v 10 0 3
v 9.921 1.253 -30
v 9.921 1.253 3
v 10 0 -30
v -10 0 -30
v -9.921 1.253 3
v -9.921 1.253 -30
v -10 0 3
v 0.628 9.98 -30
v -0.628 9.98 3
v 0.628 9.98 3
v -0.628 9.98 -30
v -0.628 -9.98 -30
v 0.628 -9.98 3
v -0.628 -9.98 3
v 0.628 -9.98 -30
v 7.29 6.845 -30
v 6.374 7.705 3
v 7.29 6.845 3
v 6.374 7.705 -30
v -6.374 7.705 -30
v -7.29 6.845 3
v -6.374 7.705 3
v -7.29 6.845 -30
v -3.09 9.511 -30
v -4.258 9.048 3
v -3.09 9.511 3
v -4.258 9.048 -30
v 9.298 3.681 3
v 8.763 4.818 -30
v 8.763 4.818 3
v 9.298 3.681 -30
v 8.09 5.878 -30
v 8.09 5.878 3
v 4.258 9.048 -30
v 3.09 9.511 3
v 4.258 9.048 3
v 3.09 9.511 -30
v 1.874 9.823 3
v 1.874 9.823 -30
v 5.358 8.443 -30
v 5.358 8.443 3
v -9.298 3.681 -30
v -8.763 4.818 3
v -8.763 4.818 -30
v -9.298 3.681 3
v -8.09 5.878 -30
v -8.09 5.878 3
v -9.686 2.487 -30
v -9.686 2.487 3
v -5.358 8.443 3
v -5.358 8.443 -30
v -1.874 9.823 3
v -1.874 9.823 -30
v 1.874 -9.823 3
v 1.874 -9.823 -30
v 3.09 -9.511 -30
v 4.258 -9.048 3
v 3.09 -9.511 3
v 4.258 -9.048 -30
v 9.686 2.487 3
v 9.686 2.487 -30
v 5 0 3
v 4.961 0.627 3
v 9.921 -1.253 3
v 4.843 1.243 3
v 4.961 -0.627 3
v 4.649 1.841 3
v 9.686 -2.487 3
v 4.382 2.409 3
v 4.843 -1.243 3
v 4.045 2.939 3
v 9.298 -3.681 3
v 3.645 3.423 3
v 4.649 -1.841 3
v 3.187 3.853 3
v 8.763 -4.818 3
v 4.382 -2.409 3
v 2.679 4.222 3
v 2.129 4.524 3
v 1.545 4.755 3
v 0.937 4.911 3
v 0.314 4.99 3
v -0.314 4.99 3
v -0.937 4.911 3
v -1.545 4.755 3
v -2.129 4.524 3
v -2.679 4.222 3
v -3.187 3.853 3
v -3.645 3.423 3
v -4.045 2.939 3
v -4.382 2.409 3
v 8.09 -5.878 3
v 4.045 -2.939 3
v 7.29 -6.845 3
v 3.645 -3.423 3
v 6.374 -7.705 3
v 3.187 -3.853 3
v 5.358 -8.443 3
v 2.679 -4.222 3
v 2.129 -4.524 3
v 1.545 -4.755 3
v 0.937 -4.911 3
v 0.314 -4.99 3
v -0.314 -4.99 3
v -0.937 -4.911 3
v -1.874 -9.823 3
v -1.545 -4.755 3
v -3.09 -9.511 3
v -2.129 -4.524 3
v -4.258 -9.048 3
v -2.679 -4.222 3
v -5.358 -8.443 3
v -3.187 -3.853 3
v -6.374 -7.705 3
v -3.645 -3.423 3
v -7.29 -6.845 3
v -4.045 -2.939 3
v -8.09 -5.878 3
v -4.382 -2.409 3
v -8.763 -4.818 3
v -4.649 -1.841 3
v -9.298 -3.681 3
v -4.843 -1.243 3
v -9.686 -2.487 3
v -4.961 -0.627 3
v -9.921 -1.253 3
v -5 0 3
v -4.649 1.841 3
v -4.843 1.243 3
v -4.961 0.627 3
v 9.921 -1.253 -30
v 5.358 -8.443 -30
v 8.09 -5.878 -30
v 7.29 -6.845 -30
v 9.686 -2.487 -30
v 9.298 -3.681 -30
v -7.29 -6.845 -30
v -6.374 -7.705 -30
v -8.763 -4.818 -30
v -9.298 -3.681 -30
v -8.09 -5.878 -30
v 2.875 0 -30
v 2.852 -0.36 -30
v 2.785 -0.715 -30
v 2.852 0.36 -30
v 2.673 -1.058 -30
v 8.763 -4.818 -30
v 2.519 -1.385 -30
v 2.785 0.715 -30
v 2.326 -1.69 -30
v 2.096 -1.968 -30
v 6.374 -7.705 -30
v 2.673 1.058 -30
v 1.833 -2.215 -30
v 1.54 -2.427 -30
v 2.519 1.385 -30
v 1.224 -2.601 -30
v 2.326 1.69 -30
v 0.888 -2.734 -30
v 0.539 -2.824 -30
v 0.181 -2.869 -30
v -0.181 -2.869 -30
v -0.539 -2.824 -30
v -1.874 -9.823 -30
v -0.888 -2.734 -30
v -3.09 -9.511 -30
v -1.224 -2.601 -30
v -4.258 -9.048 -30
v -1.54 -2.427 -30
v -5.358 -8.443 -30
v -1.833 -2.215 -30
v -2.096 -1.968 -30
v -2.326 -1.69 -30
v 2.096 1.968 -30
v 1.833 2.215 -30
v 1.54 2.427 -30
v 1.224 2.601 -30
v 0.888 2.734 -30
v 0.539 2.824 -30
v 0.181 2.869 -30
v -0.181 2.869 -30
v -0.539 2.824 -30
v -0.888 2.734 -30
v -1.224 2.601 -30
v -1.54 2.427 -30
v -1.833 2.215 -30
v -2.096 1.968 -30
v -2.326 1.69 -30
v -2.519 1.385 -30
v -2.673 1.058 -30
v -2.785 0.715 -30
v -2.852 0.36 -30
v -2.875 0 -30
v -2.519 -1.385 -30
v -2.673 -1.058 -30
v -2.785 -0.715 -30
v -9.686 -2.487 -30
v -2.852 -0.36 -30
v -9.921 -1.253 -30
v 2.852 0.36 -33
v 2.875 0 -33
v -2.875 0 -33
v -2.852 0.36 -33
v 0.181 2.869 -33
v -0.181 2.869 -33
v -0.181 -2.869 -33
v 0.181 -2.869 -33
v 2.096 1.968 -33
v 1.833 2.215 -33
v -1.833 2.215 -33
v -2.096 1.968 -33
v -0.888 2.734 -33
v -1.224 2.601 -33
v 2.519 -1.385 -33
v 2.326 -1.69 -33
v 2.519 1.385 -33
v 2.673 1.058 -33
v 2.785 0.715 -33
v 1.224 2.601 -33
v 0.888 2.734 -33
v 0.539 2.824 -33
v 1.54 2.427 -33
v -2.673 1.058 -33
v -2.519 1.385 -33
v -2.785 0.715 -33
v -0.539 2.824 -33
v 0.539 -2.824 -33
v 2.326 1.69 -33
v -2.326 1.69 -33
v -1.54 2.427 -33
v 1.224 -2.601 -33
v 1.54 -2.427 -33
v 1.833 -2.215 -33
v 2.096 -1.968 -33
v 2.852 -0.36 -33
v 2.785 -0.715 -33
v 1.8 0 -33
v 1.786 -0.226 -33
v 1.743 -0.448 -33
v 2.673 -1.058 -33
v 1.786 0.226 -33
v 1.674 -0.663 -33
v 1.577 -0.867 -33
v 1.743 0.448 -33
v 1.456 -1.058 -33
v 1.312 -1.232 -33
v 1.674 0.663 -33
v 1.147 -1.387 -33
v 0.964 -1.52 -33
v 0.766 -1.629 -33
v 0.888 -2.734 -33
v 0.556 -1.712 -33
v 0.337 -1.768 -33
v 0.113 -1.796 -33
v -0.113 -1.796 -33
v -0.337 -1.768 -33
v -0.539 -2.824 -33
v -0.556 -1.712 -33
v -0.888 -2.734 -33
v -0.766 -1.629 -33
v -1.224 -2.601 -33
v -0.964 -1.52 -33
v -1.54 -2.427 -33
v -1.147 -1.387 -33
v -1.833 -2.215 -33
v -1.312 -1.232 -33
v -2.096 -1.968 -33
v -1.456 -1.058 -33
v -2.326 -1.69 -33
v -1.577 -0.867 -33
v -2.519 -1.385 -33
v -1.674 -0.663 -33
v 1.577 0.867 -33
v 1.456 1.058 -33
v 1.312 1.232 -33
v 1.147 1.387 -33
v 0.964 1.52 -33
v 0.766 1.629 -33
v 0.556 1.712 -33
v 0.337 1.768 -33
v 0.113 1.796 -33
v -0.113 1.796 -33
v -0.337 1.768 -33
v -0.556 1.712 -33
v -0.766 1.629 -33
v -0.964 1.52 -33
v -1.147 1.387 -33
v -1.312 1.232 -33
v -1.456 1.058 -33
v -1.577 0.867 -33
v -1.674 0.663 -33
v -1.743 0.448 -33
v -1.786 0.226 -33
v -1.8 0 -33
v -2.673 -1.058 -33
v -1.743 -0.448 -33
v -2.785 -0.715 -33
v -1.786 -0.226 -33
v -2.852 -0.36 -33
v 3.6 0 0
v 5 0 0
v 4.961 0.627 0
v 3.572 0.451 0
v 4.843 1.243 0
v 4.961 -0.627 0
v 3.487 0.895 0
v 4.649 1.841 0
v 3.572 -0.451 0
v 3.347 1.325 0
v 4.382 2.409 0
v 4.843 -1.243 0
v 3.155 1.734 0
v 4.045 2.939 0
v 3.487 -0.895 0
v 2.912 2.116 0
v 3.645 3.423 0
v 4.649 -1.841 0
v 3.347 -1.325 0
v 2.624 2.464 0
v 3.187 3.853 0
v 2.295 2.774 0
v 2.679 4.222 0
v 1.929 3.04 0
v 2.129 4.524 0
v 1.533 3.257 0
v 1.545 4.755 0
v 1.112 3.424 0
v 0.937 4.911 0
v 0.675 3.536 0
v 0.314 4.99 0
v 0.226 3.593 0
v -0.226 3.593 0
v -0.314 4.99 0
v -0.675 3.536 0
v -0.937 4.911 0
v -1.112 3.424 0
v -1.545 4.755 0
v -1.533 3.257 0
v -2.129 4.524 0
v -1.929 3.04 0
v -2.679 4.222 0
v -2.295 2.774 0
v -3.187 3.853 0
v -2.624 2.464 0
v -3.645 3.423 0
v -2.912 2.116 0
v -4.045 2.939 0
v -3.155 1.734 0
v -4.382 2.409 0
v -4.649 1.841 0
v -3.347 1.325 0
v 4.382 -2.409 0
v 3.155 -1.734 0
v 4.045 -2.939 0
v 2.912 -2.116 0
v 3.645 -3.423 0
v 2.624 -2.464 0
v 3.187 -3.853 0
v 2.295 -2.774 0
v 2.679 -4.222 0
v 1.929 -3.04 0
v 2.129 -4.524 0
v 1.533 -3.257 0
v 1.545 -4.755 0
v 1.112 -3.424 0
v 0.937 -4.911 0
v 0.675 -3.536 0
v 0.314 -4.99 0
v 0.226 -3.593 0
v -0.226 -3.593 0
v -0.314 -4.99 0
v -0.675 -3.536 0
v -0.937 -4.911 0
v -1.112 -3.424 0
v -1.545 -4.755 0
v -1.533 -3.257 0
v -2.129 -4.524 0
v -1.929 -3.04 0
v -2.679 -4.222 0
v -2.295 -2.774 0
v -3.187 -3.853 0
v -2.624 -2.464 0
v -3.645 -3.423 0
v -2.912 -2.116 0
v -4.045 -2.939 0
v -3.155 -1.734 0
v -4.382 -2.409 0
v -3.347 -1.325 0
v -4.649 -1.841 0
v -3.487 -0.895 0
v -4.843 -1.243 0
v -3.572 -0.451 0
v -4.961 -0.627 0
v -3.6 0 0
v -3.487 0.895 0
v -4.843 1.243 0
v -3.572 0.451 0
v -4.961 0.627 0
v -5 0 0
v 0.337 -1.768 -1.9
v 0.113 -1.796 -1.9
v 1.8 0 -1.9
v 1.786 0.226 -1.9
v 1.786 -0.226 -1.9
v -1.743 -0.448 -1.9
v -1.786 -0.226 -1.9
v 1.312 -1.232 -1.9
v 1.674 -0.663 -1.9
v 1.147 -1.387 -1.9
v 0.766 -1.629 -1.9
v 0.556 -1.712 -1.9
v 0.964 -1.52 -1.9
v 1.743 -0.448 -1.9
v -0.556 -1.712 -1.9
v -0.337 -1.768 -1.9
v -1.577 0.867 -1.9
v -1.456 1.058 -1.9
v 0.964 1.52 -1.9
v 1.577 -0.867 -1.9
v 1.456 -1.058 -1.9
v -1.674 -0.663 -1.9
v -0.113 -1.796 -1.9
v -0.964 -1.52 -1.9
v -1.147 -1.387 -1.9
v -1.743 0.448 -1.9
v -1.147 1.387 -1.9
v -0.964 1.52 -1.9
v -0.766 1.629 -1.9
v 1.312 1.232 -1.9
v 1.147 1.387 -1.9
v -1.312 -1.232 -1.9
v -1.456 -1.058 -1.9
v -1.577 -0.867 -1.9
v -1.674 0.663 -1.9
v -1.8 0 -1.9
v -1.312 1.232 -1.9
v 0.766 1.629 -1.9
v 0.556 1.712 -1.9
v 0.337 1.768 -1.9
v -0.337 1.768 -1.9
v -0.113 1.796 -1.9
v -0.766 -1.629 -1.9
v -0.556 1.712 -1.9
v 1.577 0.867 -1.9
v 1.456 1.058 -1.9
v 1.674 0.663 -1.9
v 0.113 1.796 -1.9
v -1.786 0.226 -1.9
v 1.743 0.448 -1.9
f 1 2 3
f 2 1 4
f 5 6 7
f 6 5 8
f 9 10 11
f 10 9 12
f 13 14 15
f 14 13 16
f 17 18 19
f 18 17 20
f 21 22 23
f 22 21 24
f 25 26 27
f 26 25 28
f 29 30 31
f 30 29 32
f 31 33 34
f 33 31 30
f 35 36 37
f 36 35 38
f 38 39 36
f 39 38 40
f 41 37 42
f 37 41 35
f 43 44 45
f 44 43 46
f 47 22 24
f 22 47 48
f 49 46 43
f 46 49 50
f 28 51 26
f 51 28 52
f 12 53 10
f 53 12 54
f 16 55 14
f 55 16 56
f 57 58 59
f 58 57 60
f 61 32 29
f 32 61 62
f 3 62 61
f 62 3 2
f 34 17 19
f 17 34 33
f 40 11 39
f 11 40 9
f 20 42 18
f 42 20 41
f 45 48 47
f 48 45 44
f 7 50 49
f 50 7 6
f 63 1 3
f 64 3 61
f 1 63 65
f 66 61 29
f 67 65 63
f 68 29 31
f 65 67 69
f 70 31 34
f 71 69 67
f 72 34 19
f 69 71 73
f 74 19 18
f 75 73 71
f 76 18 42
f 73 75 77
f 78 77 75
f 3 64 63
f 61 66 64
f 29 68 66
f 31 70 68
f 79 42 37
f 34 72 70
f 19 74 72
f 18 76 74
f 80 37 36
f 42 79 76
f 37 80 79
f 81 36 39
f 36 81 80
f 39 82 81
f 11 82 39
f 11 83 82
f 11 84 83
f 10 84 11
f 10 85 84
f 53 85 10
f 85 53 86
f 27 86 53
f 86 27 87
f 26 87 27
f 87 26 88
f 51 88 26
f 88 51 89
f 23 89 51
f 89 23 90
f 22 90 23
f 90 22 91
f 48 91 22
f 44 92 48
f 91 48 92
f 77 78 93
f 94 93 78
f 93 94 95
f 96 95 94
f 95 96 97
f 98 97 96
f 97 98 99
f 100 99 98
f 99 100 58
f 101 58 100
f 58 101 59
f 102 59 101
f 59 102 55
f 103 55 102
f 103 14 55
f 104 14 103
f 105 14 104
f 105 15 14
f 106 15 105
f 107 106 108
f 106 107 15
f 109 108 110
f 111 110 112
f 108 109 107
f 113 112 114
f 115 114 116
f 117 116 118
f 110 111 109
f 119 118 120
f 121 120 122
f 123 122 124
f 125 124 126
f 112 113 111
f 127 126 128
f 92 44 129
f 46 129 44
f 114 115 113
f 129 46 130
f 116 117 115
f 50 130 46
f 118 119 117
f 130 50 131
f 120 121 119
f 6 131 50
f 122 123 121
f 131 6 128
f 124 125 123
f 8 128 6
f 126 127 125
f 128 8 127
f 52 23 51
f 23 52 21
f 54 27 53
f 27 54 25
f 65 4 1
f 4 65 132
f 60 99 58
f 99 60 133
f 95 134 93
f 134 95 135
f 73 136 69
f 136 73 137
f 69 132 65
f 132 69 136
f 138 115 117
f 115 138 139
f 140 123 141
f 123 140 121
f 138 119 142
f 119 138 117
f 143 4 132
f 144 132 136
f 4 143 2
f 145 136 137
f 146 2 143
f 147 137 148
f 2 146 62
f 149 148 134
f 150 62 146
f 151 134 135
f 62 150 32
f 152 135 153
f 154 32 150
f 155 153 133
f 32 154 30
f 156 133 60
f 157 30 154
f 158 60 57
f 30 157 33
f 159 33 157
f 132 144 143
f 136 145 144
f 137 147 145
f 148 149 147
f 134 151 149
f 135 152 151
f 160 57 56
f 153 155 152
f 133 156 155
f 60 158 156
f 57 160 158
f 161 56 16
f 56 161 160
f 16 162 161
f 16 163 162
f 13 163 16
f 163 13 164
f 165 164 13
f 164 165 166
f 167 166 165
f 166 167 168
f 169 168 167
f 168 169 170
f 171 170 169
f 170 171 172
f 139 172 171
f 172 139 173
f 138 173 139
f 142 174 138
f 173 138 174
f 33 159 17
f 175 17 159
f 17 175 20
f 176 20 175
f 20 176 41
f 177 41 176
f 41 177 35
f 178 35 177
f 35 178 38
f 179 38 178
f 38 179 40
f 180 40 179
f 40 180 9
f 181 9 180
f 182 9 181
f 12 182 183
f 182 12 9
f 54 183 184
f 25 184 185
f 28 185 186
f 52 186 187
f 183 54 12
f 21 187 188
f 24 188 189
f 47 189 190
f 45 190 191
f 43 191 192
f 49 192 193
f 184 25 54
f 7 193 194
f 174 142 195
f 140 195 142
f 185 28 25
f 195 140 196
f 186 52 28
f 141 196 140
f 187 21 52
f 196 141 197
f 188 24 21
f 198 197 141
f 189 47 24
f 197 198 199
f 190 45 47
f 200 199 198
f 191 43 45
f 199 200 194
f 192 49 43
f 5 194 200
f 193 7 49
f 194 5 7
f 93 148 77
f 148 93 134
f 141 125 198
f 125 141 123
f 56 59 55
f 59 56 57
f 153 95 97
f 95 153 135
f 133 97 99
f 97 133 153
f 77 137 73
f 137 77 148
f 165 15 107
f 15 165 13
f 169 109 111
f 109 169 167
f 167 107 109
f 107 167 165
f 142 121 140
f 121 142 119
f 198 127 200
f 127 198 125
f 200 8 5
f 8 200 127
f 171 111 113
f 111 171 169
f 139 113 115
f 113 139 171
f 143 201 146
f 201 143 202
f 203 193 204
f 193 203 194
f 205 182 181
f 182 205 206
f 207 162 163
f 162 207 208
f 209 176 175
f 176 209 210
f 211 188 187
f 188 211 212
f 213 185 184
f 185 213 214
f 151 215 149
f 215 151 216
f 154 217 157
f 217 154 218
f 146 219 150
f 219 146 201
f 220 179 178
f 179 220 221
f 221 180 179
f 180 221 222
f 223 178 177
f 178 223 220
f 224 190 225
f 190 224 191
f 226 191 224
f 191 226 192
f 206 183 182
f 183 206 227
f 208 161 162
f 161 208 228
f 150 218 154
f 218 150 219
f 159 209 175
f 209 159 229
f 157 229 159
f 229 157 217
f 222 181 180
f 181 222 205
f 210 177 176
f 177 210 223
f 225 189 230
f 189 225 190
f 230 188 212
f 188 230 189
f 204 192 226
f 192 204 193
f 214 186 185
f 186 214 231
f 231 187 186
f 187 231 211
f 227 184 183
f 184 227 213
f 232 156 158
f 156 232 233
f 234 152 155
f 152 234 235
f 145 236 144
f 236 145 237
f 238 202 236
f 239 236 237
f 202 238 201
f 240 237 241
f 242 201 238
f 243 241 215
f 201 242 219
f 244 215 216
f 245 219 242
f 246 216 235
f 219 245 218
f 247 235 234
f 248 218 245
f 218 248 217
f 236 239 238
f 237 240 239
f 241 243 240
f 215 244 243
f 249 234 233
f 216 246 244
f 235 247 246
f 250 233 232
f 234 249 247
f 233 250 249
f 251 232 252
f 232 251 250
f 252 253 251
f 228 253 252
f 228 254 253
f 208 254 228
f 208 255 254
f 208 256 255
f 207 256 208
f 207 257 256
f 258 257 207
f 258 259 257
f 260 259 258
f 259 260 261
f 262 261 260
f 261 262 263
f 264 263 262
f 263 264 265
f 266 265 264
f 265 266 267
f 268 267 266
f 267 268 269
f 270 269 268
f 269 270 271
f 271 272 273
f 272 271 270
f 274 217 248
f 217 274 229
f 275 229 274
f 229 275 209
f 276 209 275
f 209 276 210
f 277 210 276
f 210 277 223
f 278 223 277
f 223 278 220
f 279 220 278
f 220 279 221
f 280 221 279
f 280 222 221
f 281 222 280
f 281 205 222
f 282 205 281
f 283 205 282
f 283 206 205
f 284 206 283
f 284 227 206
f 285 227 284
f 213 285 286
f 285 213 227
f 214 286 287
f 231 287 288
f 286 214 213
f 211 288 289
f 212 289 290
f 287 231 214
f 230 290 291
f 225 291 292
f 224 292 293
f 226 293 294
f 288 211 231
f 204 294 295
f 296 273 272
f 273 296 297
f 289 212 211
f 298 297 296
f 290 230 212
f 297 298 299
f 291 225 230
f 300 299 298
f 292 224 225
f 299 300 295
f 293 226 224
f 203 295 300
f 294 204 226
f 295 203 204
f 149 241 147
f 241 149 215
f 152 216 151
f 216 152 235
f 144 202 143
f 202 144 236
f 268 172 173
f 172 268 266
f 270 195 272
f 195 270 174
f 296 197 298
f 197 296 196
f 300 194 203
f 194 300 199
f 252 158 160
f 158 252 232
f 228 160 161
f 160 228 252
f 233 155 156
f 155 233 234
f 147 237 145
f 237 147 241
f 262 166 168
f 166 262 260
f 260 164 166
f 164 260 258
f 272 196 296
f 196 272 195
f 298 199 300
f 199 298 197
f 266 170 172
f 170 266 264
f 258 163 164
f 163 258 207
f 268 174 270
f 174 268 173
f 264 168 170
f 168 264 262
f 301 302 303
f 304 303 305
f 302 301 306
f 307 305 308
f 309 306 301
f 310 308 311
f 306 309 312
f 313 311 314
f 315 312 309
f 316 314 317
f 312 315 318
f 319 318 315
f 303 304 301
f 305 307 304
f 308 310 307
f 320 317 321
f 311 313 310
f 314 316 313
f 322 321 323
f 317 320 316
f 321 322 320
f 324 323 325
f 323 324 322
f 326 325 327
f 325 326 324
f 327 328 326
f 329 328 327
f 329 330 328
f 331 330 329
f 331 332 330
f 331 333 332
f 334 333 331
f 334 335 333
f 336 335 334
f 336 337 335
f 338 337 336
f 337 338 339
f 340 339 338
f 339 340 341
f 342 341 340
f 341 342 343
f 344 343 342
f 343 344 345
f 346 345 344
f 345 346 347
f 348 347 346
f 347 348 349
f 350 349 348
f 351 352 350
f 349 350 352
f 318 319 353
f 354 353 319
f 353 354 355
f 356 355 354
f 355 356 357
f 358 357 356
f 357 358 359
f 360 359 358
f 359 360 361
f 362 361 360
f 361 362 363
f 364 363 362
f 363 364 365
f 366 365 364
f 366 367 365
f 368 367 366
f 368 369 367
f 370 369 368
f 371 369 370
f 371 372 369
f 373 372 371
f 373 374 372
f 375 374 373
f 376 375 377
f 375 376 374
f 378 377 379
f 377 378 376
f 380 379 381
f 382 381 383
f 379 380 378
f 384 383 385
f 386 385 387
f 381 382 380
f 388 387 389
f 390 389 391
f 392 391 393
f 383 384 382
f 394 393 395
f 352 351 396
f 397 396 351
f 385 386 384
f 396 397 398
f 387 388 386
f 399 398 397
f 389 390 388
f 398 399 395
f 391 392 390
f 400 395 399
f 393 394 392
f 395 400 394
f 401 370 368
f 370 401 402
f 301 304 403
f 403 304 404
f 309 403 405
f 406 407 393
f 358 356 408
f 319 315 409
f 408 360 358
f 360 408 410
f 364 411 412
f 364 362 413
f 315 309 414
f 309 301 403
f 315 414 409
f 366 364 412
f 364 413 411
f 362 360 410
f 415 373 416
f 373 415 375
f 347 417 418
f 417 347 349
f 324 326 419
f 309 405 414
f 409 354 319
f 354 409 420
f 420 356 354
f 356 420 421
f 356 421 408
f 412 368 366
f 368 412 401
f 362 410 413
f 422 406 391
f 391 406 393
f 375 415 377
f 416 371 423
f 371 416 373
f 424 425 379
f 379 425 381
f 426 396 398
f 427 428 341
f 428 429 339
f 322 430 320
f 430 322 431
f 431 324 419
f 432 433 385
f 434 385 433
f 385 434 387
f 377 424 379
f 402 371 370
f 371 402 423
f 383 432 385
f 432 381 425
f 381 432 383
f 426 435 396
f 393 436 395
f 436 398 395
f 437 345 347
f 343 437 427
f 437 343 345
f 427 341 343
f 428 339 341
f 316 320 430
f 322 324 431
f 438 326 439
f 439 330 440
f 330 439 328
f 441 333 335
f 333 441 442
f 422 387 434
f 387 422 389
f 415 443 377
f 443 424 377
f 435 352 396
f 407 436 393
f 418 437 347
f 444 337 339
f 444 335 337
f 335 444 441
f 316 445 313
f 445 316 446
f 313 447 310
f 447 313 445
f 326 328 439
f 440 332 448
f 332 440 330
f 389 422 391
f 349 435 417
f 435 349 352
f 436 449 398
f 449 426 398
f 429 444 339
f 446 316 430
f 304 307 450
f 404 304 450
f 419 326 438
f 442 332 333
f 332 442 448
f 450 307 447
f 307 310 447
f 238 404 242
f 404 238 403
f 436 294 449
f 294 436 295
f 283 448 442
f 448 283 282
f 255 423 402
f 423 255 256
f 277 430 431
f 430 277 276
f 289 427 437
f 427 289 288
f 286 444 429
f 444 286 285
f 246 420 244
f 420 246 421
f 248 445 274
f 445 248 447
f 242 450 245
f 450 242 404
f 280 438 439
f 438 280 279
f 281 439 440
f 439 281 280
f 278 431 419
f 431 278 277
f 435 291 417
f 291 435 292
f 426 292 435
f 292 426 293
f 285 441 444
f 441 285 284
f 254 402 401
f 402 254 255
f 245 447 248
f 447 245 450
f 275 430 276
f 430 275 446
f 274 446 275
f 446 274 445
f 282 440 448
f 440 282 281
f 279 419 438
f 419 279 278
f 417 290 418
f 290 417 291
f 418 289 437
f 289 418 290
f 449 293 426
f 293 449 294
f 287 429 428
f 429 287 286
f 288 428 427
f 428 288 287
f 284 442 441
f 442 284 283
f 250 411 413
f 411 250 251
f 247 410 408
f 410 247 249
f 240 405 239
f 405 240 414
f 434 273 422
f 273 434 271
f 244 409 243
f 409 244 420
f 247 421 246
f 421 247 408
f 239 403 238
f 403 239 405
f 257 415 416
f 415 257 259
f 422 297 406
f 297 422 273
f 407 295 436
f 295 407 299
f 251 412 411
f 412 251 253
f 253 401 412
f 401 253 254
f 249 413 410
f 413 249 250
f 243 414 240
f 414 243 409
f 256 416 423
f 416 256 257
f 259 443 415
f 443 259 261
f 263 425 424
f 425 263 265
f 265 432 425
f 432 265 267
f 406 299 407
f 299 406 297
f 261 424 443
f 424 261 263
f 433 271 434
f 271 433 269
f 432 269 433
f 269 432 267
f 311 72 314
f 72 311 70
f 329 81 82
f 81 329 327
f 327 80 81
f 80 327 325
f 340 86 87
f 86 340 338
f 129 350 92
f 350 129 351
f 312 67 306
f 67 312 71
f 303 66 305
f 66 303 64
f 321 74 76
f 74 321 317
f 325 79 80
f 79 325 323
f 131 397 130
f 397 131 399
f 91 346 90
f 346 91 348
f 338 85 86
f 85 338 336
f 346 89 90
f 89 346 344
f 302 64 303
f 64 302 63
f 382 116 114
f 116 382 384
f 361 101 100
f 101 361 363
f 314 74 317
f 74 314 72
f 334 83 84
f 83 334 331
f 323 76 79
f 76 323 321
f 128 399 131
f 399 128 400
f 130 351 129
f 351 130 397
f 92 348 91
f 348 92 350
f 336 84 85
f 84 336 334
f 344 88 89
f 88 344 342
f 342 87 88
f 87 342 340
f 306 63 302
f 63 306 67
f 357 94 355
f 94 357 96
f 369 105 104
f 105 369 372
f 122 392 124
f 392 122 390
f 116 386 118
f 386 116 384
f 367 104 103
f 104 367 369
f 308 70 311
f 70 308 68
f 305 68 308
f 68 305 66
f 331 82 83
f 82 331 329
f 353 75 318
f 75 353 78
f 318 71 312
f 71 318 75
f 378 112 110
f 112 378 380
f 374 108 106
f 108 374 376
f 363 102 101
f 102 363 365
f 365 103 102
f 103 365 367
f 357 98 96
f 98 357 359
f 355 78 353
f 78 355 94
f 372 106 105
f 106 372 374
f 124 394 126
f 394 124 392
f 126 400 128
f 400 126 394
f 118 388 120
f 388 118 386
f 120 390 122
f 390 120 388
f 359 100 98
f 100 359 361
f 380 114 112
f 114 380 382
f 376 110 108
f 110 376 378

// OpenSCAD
$fn = 50;


difference() {
	union() {
		translate(v = [0, 0, -30.0000000000]) {
			cylinder(h = 33, r = 10.0000000000);
		}
		#translate(v = [0, 0, -33.0000000000]) {
			cylinder(h = 33, r = 2.8750000000);
		}
	}
	union() {
		translate(v = [0, 0, 0]) {
			rotate(a = [0, 0, 0]) {
				difference() {
					union() {
						translate(v = [0, 0, -33.0000000000]) {
							cylinder(h = 33, r = 1.5000000000);
						}
						translate(v = [0, 0, -1.9000000000]) {
							cylinder(h = 1.9000000000, r1 = 1.8000000000, r2 = 3.6000000000);
						}
						translate(v = [0, 0, -33.0000000000]) {
							cylinder(h = 33, r = 1.8000000000);
						}
						translate(v = [0, 0, -33.0000000000]) {
							cylinder(h = 33, r = 1.5000000000);
						}
					}
					union();
				}
			}
		}
		#cylinder(h = 3, r = 5.0000000000);
	}
}
